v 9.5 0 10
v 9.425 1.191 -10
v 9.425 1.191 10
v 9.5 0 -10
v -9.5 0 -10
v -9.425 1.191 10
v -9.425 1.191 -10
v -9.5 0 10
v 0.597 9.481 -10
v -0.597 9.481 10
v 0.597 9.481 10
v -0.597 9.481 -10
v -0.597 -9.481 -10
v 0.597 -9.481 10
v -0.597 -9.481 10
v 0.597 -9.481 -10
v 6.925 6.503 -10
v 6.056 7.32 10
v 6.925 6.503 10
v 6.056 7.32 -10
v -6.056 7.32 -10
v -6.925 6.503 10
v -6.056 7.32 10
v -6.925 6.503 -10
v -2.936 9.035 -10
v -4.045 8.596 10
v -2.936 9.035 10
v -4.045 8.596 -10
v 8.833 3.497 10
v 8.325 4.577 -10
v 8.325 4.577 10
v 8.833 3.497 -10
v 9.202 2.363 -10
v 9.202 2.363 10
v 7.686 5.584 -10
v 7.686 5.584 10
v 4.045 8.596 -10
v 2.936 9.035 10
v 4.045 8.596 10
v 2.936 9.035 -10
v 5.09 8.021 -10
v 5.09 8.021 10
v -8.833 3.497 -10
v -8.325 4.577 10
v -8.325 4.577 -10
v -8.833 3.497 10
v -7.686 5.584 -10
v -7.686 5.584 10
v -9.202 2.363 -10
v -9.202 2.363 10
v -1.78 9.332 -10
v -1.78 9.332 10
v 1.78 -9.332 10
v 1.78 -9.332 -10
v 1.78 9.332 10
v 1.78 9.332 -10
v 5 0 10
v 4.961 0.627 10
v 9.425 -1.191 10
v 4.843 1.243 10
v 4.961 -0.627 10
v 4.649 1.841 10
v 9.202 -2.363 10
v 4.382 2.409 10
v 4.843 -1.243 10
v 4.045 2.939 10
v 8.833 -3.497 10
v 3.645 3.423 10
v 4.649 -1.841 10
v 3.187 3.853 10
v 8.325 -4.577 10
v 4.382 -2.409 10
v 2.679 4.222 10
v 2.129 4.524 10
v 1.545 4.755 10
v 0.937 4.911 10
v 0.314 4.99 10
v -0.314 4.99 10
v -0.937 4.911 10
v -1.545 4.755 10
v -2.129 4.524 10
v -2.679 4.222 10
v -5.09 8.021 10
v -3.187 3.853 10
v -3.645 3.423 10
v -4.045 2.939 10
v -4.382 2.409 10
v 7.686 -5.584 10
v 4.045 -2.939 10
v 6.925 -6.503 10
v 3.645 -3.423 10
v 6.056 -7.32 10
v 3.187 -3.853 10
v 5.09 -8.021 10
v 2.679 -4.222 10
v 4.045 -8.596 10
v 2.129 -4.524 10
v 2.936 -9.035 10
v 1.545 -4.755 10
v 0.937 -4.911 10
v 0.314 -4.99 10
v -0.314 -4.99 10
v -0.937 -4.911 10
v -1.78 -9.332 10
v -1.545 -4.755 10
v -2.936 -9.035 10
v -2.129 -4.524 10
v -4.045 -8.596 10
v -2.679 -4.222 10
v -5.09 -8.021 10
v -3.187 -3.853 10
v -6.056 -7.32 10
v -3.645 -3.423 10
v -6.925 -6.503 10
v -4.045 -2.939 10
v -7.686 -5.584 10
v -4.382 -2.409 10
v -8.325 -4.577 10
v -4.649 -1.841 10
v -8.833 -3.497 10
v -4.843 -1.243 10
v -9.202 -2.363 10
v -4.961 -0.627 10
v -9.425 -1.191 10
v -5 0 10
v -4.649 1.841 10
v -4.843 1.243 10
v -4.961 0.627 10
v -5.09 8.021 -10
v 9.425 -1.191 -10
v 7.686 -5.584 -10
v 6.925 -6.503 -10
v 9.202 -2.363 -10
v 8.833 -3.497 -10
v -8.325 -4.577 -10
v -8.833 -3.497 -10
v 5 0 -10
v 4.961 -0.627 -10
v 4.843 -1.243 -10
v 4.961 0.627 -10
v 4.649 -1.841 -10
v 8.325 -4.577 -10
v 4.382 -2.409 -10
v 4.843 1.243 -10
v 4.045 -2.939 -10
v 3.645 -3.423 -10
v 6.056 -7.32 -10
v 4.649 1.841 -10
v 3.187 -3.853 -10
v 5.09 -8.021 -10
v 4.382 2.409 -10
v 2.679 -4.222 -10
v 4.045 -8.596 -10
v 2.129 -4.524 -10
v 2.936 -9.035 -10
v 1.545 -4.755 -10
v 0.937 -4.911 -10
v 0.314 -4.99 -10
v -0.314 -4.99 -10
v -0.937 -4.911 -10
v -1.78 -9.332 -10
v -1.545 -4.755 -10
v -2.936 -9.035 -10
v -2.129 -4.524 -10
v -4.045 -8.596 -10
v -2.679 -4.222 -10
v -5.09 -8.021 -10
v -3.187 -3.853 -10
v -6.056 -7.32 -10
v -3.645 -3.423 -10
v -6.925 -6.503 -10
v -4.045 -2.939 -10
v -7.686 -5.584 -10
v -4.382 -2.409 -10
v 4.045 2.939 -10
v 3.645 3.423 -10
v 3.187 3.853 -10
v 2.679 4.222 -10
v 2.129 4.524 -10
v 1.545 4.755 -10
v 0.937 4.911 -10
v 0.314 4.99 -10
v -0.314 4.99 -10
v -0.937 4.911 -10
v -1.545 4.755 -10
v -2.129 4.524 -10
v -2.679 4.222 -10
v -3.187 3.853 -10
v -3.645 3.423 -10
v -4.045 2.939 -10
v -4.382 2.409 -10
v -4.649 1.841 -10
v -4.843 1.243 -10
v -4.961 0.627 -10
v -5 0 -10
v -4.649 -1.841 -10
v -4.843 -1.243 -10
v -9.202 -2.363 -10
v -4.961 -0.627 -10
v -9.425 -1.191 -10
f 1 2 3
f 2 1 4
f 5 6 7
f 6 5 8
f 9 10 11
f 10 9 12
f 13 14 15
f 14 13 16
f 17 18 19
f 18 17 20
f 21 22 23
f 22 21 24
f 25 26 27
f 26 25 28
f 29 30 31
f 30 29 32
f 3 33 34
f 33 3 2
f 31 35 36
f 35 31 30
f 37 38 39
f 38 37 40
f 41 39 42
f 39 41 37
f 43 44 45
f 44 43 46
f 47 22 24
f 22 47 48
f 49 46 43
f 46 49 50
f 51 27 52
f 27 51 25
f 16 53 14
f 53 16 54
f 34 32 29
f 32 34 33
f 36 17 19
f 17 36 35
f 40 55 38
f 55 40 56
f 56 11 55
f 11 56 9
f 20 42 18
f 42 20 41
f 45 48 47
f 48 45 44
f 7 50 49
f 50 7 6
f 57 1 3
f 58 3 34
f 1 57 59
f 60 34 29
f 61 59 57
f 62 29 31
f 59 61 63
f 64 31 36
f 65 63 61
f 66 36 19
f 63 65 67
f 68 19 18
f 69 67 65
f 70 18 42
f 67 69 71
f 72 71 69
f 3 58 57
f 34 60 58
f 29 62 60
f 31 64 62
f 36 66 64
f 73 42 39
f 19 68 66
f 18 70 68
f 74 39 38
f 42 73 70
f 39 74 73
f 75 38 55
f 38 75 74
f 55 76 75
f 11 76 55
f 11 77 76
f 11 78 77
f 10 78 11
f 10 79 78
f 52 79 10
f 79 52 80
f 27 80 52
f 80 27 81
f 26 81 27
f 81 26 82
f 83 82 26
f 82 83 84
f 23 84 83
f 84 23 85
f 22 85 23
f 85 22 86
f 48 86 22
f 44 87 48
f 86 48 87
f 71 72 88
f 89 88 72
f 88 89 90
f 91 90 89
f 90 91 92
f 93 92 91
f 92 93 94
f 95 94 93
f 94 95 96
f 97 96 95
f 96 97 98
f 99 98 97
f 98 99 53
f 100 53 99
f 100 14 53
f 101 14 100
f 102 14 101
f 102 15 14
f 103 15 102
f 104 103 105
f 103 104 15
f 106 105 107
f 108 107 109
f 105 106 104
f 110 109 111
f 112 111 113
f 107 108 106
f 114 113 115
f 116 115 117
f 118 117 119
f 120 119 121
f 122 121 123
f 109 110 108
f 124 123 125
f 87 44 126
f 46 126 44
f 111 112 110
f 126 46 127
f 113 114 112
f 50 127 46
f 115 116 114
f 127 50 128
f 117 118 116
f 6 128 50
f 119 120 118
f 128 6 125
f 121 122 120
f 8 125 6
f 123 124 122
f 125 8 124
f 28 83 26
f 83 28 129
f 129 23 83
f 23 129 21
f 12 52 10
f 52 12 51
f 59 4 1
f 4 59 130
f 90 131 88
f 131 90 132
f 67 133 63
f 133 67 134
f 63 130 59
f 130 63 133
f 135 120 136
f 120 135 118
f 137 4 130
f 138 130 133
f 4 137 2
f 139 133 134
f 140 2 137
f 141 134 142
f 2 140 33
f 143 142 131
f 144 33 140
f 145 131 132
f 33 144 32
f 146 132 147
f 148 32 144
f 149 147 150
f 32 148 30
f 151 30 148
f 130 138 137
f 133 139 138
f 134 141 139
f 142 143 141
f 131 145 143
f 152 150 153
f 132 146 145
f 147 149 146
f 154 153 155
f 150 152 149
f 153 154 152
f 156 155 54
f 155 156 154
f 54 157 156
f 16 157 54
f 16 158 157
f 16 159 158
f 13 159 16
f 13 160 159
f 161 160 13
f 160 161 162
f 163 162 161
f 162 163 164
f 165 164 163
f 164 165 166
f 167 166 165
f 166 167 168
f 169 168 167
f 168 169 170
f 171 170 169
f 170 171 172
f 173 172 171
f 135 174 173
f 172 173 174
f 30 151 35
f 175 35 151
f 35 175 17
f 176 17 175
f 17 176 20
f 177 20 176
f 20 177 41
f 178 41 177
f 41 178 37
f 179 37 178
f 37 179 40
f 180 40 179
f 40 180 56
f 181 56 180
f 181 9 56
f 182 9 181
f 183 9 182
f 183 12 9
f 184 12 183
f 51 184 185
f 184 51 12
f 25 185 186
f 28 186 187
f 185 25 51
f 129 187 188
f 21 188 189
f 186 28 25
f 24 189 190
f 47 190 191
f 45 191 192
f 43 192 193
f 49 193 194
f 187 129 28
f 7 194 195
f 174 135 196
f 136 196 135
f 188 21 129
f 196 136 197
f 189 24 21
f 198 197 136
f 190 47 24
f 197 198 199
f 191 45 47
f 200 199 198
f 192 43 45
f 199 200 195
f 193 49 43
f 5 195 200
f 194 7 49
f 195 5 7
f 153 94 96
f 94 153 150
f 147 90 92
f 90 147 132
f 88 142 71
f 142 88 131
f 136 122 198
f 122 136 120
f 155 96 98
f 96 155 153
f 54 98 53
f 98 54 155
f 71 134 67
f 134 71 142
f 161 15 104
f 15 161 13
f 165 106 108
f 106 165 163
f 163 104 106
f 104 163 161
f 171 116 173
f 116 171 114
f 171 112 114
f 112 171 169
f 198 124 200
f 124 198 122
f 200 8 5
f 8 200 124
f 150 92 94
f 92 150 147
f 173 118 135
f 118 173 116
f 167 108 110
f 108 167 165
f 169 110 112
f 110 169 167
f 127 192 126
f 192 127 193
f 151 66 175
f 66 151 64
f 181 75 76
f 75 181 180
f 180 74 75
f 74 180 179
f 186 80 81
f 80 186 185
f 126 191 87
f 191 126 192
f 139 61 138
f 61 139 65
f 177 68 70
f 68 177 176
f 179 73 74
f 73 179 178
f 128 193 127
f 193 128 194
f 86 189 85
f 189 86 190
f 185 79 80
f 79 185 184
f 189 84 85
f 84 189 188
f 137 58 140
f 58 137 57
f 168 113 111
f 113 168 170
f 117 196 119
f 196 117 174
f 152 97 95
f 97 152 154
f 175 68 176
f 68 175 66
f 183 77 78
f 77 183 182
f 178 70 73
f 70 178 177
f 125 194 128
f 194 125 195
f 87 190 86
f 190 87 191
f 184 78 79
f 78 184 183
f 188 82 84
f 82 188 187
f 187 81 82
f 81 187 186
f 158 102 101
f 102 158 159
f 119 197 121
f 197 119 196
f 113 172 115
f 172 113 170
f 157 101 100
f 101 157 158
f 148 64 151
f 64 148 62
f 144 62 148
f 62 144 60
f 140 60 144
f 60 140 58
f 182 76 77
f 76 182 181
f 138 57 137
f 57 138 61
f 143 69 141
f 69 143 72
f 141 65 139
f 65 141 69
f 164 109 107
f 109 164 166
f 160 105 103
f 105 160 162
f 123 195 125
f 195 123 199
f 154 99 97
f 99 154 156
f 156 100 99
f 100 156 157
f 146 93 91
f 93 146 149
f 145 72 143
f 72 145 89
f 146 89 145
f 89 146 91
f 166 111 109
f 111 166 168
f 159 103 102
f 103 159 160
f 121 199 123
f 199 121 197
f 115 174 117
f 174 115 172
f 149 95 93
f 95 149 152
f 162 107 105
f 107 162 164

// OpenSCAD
$fn = 50;


difference() {
	union() {
		translate(v = [0, 0, -10.0000000000]) {
			cylinder(h = 20, r = 9.5000000000);
		}
	}
	union() {
		translate(v = [0, 0, -100.0000000000]) {
			cylinder(h = 200, r = 5.0000000000);
		}
	}
}
